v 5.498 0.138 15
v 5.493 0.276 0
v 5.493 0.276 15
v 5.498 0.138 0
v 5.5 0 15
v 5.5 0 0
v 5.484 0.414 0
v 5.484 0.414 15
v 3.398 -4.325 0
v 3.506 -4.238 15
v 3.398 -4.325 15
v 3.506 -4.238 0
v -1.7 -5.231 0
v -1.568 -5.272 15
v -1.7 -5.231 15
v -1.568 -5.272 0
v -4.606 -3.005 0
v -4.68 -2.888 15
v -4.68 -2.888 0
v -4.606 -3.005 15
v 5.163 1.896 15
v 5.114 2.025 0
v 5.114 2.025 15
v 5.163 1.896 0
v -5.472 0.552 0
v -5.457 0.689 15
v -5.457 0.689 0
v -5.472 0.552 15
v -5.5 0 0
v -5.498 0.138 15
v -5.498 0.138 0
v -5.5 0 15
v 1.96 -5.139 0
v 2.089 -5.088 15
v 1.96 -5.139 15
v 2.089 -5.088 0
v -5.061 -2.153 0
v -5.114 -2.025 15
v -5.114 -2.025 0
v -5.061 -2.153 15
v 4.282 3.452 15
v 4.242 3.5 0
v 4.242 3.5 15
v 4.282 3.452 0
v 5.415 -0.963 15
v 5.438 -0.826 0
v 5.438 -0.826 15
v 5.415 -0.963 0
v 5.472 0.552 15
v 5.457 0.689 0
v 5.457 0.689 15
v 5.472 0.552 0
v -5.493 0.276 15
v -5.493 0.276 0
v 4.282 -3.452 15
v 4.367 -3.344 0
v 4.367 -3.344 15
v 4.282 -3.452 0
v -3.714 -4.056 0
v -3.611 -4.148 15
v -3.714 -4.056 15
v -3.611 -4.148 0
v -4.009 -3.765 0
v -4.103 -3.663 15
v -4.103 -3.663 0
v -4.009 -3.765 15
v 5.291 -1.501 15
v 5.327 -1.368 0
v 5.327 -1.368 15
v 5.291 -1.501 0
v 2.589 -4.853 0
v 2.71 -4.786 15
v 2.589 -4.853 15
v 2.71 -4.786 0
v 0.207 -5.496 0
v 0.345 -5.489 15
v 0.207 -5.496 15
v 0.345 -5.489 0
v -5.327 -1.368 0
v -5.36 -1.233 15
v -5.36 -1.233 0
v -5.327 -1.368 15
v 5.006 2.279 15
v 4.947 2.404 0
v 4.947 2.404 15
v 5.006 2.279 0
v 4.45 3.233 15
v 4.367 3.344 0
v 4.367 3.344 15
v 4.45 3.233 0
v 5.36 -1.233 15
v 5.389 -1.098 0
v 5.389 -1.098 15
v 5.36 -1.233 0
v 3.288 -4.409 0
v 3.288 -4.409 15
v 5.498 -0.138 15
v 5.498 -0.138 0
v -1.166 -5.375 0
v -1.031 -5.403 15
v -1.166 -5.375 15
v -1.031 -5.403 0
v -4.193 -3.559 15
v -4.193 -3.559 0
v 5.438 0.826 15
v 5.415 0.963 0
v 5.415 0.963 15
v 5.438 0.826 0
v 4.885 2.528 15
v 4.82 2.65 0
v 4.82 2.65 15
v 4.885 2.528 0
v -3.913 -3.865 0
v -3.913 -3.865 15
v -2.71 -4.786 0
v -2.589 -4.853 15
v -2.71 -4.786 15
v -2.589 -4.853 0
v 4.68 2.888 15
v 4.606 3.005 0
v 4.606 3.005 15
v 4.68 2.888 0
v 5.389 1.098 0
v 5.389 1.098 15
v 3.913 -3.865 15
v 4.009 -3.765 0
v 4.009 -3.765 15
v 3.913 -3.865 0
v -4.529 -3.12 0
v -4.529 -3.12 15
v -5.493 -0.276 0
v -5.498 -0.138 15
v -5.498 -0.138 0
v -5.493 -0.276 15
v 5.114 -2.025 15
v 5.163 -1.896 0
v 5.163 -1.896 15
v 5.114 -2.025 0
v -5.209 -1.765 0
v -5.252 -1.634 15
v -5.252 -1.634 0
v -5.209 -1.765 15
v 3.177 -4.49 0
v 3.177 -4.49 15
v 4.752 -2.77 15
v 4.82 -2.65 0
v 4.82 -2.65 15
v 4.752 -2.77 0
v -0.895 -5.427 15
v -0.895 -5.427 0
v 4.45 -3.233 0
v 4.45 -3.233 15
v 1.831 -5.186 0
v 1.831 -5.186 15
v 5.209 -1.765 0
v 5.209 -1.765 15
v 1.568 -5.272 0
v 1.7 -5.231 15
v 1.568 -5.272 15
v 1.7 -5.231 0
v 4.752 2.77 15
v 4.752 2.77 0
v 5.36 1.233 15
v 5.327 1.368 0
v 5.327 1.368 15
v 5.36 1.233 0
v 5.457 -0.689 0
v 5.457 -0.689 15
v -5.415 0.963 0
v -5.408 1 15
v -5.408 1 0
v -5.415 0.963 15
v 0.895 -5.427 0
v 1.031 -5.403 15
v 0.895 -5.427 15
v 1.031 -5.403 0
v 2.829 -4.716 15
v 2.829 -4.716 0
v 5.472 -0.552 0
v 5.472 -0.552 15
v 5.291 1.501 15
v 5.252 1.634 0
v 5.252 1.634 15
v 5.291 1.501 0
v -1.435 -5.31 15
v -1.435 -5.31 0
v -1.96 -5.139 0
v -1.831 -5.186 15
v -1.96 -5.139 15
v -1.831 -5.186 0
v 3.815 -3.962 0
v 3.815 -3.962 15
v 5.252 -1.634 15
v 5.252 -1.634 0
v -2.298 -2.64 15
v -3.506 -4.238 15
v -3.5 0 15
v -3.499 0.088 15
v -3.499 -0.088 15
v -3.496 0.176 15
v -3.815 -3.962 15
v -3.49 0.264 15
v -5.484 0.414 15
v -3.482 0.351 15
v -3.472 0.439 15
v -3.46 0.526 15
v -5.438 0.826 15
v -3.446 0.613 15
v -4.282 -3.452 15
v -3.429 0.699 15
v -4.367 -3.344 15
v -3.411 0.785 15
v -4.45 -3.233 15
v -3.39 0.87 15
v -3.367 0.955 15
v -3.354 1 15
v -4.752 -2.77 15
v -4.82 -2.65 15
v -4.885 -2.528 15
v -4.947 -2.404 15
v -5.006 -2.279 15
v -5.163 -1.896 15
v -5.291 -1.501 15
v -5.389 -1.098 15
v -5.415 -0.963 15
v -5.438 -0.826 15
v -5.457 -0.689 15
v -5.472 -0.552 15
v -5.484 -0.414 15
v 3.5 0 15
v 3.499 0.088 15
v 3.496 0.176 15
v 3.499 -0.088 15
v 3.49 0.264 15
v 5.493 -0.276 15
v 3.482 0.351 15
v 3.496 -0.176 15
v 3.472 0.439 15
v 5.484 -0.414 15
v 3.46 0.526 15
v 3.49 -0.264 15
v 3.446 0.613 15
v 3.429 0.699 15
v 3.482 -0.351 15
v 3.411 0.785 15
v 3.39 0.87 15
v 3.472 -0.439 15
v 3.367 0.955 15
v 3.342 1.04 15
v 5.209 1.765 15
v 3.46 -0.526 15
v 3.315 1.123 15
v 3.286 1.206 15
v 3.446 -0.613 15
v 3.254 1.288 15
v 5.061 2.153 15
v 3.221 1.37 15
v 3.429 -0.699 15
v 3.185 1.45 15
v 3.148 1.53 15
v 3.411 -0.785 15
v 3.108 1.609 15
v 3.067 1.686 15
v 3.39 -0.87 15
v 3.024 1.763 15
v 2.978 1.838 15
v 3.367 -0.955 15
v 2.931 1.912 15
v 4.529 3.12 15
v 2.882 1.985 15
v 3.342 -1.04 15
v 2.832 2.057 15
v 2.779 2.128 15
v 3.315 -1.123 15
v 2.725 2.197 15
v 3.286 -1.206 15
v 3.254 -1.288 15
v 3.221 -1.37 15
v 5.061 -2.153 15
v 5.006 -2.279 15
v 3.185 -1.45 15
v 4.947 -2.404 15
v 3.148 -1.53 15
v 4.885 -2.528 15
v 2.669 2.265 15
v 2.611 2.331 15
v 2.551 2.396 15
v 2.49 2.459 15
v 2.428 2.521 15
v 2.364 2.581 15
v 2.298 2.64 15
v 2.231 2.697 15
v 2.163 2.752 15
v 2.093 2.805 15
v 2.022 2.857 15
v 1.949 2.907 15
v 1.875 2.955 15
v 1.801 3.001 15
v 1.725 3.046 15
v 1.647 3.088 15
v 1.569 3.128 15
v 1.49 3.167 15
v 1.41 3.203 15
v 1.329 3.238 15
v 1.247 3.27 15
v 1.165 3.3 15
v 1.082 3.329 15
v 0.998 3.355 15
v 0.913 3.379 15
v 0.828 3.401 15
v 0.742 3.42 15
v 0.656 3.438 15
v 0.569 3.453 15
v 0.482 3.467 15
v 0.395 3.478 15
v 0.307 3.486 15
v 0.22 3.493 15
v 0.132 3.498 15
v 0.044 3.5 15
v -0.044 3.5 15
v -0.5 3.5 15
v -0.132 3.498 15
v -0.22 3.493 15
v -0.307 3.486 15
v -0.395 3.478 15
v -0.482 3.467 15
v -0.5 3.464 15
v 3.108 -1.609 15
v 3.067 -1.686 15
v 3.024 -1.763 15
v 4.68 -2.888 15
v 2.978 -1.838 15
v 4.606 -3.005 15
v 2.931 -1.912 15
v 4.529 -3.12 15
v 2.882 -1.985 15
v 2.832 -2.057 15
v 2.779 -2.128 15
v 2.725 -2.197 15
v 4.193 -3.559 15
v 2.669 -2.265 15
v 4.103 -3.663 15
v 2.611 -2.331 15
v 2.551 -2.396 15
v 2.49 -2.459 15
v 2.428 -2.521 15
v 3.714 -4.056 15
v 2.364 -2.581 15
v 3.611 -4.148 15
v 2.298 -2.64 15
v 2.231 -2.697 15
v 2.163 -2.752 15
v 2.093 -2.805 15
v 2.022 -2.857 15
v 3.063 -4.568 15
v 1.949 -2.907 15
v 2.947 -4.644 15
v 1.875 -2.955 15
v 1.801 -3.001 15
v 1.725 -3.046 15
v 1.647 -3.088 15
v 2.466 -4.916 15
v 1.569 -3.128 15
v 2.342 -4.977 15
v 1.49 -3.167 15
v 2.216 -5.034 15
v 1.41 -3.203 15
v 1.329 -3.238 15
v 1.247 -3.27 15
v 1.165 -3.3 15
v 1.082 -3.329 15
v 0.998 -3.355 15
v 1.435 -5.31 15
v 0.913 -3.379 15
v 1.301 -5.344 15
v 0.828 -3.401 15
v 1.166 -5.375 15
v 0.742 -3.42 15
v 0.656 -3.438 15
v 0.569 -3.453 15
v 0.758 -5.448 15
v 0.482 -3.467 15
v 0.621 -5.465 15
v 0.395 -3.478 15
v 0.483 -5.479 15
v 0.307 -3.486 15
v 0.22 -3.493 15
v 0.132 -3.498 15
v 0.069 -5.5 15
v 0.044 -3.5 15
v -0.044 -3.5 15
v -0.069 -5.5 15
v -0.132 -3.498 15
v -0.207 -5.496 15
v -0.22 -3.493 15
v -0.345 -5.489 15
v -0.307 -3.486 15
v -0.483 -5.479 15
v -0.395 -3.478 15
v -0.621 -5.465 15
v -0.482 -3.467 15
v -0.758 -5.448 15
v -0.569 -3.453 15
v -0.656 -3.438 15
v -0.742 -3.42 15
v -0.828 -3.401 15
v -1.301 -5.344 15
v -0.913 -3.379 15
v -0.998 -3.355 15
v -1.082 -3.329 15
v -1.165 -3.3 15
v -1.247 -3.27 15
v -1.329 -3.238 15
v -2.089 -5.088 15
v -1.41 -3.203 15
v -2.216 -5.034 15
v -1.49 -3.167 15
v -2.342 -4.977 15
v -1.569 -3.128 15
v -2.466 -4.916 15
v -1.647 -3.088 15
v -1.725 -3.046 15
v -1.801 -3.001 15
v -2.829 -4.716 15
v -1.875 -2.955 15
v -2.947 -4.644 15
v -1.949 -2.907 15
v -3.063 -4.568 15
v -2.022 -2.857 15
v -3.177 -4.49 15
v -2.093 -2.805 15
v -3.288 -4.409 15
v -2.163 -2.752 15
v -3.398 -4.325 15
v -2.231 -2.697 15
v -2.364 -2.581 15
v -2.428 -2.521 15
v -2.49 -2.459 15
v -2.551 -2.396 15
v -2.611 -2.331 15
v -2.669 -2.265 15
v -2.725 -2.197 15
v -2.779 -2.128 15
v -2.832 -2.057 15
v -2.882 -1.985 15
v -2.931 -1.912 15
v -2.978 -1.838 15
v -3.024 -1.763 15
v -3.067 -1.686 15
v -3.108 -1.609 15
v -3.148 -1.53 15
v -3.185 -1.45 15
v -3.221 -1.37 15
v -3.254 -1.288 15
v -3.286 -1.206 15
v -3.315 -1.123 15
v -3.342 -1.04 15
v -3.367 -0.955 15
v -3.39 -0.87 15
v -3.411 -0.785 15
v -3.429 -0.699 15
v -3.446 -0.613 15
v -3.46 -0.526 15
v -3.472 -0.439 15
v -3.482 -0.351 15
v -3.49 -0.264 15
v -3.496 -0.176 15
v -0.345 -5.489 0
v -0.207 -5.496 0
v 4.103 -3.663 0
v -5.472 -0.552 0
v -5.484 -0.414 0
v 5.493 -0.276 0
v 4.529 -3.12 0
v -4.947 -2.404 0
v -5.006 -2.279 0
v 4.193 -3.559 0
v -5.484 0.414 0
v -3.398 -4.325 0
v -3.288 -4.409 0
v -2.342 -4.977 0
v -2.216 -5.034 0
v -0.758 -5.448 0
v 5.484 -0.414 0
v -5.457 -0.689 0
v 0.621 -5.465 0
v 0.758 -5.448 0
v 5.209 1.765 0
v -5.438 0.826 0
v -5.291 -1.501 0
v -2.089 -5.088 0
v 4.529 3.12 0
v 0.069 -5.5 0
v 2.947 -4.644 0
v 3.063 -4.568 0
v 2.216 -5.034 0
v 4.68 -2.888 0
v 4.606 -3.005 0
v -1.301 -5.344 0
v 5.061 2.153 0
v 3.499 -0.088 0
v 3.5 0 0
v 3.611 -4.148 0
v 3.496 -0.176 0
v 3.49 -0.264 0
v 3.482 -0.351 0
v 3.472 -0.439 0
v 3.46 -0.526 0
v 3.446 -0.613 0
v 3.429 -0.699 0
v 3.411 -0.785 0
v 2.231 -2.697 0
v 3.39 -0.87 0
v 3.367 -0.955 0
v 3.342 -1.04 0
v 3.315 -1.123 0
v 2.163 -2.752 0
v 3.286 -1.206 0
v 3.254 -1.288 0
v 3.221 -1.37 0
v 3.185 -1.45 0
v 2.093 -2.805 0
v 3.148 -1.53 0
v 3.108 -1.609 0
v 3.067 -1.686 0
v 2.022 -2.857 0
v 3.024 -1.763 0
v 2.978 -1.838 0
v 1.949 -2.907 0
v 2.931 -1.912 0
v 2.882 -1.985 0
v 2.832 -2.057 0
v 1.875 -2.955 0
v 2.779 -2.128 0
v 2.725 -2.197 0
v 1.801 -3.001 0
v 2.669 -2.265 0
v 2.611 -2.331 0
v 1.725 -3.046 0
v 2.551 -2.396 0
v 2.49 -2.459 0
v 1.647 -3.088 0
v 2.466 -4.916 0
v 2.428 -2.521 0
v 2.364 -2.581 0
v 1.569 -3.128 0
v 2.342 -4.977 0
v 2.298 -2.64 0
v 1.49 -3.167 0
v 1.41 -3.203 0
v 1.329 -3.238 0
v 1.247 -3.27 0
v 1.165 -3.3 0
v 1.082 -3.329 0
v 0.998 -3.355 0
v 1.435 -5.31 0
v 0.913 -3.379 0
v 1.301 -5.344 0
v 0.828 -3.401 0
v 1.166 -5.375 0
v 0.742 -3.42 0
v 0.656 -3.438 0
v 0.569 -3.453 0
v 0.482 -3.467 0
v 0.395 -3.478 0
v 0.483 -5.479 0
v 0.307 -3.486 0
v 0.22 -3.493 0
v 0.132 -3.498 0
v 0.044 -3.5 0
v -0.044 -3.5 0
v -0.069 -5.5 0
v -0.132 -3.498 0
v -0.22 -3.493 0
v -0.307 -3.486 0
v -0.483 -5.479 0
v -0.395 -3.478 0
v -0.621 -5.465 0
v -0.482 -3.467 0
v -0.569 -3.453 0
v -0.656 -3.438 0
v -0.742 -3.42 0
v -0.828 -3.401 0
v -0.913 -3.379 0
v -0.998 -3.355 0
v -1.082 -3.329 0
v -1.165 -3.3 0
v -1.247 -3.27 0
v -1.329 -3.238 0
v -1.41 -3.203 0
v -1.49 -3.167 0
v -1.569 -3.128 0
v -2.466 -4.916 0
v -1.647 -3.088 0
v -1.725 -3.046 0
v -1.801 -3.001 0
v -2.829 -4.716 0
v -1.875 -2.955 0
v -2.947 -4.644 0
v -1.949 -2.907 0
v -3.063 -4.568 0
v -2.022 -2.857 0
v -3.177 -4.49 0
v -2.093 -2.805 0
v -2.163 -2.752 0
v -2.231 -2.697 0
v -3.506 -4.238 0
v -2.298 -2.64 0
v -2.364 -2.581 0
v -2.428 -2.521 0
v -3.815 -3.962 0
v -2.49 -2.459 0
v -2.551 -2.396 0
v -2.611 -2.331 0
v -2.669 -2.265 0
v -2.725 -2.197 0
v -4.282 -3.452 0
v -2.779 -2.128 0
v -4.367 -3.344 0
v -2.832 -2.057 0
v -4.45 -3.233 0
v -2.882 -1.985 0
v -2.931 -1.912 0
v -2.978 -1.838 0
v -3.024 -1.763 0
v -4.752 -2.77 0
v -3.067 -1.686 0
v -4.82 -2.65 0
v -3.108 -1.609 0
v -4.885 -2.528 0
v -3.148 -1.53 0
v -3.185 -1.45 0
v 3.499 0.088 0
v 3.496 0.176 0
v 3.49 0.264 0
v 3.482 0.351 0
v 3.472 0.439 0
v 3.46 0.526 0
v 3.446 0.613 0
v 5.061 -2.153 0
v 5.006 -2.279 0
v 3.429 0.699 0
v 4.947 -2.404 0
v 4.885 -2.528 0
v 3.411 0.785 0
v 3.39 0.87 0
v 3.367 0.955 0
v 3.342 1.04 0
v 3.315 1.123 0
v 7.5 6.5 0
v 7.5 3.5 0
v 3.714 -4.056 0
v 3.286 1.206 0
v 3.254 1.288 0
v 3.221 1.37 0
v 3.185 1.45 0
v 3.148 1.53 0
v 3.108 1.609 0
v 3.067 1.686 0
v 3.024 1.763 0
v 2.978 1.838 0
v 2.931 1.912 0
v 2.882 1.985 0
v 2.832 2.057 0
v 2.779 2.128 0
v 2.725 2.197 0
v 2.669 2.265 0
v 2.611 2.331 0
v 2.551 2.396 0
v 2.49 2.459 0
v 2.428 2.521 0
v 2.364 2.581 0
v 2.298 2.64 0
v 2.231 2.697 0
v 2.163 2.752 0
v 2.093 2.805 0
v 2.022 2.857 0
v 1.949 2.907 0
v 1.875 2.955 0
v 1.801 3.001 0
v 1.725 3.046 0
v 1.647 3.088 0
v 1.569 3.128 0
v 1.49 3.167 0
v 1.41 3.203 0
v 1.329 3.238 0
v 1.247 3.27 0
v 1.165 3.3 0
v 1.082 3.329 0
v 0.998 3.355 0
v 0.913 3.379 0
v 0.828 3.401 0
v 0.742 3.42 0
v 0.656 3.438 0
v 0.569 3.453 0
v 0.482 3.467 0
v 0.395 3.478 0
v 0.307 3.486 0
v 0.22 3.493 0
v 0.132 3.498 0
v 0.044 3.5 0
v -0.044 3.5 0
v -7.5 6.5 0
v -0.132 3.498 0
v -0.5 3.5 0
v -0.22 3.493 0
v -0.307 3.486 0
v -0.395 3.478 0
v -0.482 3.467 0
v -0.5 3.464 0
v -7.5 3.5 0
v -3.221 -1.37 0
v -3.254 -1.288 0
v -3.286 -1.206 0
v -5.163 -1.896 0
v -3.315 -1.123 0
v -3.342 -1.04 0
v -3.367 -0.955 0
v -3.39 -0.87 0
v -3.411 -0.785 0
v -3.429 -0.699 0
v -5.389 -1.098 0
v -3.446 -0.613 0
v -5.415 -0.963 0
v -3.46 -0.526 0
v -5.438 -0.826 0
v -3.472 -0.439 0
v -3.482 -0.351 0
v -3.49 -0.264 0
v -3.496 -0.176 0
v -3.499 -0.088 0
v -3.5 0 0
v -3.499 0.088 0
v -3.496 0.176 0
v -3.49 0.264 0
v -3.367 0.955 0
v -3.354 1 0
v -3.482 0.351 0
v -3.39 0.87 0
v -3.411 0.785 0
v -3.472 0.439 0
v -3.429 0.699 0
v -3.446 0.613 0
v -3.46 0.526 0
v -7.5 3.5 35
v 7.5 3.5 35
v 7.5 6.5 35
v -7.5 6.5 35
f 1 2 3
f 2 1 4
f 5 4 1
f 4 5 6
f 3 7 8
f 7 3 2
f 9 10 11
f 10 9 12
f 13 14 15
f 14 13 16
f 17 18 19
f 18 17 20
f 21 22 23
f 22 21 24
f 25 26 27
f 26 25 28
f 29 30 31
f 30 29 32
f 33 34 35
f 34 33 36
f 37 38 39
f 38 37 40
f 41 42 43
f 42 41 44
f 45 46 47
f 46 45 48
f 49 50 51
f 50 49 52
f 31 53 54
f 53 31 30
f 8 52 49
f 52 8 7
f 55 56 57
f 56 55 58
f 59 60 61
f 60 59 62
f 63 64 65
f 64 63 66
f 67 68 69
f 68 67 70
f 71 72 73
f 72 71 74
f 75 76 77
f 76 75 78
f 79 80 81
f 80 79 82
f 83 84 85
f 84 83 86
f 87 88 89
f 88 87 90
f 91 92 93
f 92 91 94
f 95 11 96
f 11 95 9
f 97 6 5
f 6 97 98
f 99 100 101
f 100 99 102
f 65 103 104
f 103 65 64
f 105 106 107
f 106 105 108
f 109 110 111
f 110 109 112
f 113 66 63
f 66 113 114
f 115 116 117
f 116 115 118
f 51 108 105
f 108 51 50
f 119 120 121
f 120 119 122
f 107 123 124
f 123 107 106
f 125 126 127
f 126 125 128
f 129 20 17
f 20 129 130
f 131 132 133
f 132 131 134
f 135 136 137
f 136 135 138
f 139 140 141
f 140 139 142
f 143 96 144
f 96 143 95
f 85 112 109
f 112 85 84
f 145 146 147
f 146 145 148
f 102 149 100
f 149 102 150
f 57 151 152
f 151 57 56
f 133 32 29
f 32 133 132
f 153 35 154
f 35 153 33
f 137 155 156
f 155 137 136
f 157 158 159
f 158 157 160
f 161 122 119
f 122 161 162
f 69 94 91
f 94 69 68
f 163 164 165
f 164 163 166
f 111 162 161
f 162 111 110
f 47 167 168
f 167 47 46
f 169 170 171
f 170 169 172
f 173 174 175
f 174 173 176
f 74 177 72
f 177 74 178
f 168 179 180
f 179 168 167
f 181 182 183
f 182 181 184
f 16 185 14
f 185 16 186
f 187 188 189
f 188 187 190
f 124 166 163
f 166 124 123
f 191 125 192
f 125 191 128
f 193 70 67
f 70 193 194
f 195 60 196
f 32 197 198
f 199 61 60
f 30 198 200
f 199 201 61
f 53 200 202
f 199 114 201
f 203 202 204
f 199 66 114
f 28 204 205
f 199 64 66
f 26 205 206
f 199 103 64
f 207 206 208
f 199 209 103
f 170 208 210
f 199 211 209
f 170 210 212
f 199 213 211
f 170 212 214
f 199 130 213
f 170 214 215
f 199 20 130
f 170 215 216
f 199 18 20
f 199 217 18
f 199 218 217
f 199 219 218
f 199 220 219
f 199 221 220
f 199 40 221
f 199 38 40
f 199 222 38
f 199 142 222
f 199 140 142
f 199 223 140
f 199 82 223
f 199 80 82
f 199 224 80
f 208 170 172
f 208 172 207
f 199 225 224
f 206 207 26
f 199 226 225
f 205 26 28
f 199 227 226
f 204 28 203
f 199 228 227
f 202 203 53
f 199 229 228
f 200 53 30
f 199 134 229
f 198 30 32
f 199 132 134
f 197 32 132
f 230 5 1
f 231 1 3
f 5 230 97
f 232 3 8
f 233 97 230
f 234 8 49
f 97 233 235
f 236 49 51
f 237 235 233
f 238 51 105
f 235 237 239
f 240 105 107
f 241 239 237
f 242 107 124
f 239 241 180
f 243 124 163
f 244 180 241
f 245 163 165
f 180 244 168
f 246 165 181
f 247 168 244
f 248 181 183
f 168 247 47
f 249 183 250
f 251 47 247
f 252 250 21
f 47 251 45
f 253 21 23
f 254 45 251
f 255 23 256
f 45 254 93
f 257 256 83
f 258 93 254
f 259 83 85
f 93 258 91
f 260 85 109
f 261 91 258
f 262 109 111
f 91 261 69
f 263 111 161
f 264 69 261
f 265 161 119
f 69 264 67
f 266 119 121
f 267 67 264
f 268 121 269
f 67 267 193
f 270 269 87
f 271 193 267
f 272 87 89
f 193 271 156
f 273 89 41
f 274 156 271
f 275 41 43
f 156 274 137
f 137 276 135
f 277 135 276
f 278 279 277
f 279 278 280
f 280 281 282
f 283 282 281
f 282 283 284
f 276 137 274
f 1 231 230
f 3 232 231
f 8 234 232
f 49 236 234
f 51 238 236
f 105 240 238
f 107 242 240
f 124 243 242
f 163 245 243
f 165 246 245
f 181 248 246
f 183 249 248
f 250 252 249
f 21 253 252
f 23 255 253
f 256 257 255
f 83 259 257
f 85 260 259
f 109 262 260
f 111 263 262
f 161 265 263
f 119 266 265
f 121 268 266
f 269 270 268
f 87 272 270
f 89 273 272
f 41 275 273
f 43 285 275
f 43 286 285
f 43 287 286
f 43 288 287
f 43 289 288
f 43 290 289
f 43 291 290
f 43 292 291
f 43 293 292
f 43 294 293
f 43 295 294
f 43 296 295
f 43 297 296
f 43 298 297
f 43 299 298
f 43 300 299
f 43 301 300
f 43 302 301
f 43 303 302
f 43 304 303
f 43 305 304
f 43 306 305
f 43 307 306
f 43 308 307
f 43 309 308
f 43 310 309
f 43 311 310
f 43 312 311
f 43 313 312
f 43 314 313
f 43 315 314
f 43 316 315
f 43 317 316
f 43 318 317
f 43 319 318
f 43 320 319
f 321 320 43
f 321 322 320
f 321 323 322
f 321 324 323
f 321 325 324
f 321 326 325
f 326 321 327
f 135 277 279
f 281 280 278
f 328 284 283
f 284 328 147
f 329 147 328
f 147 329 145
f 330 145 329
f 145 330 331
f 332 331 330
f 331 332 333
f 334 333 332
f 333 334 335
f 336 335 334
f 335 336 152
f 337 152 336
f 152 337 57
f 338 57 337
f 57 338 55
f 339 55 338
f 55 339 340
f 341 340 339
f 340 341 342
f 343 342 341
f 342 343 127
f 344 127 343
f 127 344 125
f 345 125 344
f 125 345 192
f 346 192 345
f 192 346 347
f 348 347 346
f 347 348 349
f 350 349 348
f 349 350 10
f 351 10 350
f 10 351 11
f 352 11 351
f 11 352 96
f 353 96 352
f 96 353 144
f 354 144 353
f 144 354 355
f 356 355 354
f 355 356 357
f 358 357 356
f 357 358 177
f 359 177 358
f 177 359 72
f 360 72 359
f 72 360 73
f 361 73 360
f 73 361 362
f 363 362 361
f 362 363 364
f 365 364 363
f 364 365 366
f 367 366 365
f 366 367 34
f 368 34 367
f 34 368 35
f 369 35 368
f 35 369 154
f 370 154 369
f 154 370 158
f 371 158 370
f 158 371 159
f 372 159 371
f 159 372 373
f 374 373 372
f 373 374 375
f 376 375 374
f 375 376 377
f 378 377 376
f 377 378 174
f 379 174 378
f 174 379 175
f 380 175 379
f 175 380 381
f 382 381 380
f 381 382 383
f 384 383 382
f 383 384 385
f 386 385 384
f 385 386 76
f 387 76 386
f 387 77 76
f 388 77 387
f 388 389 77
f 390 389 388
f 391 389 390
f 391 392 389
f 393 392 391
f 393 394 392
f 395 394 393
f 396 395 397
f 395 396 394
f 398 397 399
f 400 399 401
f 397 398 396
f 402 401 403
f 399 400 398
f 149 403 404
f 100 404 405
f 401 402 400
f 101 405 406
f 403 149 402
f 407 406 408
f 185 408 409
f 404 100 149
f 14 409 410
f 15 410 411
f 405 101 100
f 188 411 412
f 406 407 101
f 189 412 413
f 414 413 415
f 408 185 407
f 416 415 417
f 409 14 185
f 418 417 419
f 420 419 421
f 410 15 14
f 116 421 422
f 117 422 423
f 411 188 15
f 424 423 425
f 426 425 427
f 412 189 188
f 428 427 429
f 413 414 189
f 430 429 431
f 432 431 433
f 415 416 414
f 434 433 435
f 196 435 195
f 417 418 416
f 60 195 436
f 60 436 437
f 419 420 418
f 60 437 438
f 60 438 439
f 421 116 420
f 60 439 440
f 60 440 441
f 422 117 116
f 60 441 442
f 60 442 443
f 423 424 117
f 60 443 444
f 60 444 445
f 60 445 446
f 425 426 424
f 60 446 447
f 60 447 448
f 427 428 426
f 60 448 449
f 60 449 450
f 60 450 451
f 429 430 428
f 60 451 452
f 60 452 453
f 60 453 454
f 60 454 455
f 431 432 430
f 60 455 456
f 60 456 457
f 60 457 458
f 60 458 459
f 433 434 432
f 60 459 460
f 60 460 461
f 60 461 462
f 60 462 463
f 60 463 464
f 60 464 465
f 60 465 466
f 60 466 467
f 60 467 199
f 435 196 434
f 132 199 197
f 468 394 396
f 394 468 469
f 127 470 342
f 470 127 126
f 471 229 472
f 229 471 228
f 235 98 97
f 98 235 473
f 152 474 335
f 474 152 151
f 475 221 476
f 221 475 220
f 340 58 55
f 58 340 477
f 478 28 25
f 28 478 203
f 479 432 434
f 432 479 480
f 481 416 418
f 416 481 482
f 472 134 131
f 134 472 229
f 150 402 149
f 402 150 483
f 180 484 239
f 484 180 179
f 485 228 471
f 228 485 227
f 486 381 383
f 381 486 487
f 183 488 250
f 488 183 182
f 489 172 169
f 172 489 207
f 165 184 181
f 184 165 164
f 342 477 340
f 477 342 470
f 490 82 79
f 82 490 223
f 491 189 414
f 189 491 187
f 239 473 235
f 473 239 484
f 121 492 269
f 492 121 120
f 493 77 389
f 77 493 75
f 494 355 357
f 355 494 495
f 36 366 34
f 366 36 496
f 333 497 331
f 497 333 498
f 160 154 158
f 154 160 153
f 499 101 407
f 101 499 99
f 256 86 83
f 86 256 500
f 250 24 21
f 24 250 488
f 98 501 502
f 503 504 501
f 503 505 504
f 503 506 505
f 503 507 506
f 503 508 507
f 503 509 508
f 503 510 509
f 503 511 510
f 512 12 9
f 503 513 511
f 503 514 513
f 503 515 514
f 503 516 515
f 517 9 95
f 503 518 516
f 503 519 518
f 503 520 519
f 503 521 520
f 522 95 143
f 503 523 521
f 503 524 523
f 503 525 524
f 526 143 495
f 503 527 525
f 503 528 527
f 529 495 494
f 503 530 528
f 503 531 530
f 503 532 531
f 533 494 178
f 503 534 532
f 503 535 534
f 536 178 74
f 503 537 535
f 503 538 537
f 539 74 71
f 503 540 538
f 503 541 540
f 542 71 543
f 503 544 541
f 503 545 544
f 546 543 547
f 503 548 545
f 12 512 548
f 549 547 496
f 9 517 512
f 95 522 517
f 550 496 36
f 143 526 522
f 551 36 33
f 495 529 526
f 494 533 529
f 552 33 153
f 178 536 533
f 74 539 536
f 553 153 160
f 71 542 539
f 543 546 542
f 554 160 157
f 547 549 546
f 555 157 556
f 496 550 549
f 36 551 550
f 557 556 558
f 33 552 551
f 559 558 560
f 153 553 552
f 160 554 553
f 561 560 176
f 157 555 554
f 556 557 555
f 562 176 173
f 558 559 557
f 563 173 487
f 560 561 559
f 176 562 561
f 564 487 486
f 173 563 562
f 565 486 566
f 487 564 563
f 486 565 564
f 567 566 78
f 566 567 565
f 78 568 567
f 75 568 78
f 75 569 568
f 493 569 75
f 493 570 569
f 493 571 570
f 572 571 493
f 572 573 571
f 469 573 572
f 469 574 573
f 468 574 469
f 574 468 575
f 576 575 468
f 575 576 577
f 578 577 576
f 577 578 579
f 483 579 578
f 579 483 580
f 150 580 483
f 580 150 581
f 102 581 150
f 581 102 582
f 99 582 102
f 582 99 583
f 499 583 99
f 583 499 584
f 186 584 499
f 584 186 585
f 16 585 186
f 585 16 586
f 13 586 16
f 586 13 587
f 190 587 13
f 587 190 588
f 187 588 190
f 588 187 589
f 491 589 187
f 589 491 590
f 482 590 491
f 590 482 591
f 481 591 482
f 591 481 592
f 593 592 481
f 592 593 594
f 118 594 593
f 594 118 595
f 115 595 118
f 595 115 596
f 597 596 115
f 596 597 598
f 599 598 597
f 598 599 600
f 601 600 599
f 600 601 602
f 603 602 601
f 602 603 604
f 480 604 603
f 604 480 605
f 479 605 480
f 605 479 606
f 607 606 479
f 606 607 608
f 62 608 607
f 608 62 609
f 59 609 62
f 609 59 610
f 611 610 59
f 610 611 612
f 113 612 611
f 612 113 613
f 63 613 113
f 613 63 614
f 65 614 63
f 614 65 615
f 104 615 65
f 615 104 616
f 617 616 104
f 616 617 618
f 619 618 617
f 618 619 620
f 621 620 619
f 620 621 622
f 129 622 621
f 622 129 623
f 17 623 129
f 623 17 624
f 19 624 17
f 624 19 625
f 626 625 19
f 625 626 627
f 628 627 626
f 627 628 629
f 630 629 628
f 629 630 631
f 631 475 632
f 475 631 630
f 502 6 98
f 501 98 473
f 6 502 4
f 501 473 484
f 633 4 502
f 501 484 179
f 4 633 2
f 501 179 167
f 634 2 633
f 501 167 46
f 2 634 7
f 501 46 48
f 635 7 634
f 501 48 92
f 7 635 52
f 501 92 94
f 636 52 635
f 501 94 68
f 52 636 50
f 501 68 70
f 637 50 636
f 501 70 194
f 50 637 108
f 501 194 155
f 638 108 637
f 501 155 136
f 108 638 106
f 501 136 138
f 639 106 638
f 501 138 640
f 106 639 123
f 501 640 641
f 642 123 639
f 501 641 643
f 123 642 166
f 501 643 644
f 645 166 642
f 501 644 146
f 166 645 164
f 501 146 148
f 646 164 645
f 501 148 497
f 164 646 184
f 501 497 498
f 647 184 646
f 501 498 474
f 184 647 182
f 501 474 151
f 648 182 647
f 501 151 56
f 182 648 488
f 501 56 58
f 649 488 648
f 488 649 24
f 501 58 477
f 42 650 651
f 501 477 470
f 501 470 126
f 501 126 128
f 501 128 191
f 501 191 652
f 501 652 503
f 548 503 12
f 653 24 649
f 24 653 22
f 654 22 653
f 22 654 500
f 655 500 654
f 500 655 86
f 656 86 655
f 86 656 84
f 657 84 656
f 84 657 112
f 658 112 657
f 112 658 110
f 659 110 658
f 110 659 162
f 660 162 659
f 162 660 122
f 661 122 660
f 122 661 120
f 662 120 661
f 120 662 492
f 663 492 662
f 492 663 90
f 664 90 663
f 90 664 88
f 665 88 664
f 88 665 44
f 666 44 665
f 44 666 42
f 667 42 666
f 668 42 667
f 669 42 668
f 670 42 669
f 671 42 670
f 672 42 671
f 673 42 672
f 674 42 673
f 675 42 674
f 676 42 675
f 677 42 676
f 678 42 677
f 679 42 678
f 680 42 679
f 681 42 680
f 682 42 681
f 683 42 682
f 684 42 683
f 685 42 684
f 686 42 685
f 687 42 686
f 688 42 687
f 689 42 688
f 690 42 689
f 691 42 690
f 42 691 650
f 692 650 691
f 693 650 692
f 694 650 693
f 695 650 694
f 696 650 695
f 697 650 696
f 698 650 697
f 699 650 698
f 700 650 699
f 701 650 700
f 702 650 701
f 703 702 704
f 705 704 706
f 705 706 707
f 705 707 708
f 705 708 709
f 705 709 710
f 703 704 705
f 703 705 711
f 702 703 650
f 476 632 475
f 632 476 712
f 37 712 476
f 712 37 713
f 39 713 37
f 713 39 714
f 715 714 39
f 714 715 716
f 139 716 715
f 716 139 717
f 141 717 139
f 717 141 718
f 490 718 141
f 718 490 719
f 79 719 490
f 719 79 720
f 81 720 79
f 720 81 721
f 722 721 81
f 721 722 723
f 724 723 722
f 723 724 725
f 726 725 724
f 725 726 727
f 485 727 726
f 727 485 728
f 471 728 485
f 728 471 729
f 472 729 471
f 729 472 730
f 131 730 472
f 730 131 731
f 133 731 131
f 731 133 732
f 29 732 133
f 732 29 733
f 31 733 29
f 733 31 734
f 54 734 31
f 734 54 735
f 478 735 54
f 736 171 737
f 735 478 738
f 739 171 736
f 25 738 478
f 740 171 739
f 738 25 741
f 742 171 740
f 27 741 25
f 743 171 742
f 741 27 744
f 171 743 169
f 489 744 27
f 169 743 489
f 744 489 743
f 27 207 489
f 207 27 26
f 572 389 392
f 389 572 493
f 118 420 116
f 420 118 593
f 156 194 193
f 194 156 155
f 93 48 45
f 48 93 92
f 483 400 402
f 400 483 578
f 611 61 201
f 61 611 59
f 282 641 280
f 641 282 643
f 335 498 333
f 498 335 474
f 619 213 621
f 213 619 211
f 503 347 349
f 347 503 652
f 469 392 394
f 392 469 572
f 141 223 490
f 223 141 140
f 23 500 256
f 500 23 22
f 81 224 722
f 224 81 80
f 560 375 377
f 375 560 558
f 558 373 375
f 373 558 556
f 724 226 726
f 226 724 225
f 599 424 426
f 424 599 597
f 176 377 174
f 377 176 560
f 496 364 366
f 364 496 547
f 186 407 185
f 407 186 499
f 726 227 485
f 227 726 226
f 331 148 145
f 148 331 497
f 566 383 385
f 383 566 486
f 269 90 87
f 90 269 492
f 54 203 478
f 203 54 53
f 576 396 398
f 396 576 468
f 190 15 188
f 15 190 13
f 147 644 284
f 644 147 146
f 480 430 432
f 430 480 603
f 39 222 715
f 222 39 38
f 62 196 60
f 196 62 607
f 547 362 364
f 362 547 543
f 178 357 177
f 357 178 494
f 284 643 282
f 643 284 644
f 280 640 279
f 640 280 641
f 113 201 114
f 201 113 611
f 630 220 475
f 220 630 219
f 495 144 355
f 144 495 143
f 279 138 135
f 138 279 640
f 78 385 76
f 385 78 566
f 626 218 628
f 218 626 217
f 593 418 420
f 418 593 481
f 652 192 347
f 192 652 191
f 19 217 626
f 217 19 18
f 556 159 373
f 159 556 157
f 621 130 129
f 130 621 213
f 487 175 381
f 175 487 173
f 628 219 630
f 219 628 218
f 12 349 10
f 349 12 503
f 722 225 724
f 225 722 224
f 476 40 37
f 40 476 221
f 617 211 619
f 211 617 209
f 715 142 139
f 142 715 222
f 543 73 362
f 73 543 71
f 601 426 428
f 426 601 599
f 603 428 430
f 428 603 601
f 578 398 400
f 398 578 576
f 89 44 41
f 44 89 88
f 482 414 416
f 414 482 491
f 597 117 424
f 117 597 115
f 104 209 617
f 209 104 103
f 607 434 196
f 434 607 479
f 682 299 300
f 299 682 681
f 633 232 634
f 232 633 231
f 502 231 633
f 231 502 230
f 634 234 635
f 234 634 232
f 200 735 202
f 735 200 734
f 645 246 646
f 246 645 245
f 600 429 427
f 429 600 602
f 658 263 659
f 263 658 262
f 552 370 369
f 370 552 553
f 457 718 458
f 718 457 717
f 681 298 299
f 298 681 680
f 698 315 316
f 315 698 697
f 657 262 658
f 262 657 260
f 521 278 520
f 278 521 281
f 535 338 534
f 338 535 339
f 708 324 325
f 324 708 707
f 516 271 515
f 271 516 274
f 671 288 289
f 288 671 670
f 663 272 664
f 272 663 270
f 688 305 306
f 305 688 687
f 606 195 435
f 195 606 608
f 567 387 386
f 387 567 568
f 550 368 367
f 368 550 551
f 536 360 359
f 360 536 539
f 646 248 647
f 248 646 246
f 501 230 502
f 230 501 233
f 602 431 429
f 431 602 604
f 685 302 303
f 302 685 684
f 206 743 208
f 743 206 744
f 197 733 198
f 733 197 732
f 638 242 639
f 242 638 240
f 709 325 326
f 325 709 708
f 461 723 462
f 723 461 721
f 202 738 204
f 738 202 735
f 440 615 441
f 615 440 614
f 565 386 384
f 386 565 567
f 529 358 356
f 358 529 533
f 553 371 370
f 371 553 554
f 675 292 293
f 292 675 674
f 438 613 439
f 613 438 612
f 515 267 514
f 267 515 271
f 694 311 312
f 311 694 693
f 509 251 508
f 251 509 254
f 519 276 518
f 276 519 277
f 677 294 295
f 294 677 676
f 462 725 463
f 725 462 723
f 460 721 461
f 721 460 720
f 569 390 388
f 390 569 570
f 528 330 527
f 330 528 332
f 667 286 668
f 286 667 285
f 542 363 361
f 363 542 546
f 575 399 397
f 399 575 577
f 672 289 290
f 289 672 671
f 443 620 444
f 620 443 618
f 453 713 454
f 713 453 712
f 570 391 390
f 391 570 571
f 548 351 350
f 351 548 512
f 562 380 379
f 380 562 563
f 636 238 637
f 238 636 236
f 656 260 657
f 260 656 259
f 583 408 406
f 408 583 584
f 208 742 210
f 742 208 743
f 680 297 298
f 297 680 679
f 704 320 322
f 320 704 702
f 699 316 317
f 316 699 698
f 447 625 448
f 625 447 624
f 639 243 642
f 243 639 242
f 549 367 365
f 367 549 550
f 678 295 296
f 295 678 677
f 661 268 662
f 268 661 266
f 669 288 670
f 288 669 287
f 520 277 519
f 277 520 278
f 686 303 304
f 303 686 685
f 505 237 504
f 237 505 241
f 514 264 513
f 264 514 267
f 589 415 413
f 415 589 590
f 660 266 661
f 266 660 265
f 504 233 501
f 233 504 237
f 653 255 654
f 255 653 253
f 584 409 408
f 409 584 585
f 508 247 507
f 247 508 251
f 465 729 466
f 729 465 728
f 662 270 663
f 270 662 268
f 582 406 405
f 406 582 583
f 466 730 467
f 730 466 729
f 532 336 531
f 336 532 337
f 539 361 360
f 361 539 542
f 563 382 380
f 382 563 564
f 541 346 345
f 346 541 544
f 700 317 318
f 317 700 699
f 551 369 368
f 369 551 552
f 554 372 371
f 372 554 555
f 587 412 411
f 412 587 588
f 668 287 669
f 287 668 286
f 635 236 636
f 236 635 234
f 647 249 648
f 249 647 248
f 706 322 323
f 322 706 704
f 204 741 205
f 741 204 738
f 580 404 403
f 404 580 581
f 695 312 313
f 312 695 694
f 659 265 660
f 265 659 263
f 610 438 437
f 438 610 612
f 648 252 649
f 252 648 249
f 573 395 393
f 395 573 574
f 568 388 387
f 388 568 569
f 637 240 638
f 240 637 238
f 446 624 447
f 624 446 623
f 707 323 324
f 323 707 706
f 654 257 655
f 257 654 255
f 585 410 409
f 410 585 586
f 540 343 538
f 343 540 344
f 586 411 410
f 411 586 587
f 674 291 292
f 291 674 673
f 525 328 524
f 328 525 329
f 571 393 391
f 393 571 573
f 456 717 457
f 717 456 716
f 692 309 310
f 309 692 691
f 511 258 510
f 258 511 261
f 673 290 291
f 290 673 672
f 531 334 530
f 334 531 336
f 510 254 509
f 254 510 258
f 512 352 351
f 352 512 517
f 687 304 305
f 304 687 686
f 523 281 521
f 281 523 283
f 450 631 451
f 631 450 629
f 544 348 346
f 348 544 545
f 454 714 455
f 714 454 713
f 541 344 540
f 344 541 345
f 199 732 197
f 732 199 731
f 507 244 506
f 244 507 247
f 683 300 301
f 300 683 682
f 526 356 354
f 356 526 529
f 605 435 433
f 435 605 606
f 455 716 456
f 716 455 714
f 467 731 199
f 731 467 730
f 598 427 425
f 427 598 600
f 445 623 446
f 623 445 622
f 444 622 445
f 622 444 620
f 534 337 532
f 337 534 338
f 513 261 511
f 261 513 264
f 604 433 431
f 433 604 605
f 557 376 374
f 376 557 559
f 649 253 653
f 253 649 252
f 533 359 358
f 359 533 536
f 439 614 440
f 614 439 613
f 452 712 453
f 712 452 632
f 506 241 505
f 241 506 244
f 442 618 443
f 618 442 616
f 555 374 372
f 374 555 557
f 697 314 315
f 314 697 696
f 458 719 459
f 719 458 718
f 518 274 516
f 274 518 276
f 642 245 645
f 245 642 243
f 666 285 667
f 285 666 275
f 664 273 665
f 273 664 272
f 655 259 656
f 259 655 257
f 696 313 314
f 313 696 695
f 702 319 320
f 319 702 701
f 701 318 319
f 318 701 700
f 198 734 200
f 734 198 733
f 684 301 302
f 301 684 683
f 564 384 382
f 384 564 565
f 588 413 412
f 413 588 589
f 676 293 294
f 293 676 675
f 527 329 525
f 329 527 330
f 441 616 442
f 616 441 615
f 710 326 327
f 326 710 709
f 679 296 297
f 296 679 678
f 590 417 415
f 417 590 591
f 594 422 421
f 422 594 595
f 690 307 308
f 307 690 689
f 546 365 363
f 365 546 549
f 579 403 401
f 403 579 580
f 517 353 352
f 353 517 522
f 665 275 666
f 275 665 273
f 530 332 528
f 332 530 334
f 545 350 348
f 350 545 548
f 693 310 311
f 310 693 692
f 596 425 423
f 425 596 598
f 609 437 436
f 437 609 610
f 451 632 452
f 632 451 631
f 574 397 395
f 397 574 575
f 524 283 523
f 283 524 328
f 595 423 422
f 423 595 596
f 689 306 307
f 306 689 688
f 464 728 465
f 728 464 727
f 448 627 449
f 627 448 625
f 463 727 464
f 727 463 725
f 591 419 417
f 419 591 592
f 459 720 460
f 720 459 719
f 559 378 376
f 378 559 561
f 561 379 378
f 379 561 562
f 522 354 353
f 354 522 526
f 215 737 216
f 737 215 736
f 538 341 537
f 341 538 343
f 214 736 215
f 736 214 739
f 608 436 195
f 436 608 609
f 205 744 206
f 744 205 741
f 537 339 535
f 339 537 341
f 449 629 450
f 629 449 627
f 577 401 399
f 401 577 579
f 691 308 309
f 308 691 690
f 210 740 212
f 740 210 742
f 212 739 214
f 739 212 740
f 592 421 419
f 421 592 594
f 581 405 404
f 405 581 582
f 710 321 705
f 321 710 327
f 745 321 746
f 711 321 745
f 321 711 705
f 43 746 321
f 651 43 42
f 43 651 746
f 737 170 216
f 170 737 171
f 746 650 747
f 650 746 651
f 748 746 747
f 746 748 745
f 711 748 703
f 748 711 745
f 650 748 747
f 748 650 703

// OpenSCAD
$fn=250;
BASE = 15;
BASE_WALL = 3;
INSIDE_DIAMETER = 7;
GAP = 2.5;
CYLINDER_WALL = 2;
CYLINDER_LENGTH = 15;





union()
{
	difference()
	{
		cylinder(h = CYLINDER_LENGTH, d = INSIDE_DIAMETER + 2*CYLINDER_WALL);
		cylinder(h = CYLINDER_LENGTH, d = INSIDE_DIAMETER);
		translate([-INSIDE_DIAMETER/2-CYLINDER_WALL,1,0])cube([INSIDE_DIAMETER-2,GAP,CYLINDER_LENGTH]);

	}
	translate([-BASE/2,INSIDE_DIAMETER/2,0])cube([BASE, BASE_WALL, CYLINDER_LENGTH+2*GAP+BASE]);

	
}
